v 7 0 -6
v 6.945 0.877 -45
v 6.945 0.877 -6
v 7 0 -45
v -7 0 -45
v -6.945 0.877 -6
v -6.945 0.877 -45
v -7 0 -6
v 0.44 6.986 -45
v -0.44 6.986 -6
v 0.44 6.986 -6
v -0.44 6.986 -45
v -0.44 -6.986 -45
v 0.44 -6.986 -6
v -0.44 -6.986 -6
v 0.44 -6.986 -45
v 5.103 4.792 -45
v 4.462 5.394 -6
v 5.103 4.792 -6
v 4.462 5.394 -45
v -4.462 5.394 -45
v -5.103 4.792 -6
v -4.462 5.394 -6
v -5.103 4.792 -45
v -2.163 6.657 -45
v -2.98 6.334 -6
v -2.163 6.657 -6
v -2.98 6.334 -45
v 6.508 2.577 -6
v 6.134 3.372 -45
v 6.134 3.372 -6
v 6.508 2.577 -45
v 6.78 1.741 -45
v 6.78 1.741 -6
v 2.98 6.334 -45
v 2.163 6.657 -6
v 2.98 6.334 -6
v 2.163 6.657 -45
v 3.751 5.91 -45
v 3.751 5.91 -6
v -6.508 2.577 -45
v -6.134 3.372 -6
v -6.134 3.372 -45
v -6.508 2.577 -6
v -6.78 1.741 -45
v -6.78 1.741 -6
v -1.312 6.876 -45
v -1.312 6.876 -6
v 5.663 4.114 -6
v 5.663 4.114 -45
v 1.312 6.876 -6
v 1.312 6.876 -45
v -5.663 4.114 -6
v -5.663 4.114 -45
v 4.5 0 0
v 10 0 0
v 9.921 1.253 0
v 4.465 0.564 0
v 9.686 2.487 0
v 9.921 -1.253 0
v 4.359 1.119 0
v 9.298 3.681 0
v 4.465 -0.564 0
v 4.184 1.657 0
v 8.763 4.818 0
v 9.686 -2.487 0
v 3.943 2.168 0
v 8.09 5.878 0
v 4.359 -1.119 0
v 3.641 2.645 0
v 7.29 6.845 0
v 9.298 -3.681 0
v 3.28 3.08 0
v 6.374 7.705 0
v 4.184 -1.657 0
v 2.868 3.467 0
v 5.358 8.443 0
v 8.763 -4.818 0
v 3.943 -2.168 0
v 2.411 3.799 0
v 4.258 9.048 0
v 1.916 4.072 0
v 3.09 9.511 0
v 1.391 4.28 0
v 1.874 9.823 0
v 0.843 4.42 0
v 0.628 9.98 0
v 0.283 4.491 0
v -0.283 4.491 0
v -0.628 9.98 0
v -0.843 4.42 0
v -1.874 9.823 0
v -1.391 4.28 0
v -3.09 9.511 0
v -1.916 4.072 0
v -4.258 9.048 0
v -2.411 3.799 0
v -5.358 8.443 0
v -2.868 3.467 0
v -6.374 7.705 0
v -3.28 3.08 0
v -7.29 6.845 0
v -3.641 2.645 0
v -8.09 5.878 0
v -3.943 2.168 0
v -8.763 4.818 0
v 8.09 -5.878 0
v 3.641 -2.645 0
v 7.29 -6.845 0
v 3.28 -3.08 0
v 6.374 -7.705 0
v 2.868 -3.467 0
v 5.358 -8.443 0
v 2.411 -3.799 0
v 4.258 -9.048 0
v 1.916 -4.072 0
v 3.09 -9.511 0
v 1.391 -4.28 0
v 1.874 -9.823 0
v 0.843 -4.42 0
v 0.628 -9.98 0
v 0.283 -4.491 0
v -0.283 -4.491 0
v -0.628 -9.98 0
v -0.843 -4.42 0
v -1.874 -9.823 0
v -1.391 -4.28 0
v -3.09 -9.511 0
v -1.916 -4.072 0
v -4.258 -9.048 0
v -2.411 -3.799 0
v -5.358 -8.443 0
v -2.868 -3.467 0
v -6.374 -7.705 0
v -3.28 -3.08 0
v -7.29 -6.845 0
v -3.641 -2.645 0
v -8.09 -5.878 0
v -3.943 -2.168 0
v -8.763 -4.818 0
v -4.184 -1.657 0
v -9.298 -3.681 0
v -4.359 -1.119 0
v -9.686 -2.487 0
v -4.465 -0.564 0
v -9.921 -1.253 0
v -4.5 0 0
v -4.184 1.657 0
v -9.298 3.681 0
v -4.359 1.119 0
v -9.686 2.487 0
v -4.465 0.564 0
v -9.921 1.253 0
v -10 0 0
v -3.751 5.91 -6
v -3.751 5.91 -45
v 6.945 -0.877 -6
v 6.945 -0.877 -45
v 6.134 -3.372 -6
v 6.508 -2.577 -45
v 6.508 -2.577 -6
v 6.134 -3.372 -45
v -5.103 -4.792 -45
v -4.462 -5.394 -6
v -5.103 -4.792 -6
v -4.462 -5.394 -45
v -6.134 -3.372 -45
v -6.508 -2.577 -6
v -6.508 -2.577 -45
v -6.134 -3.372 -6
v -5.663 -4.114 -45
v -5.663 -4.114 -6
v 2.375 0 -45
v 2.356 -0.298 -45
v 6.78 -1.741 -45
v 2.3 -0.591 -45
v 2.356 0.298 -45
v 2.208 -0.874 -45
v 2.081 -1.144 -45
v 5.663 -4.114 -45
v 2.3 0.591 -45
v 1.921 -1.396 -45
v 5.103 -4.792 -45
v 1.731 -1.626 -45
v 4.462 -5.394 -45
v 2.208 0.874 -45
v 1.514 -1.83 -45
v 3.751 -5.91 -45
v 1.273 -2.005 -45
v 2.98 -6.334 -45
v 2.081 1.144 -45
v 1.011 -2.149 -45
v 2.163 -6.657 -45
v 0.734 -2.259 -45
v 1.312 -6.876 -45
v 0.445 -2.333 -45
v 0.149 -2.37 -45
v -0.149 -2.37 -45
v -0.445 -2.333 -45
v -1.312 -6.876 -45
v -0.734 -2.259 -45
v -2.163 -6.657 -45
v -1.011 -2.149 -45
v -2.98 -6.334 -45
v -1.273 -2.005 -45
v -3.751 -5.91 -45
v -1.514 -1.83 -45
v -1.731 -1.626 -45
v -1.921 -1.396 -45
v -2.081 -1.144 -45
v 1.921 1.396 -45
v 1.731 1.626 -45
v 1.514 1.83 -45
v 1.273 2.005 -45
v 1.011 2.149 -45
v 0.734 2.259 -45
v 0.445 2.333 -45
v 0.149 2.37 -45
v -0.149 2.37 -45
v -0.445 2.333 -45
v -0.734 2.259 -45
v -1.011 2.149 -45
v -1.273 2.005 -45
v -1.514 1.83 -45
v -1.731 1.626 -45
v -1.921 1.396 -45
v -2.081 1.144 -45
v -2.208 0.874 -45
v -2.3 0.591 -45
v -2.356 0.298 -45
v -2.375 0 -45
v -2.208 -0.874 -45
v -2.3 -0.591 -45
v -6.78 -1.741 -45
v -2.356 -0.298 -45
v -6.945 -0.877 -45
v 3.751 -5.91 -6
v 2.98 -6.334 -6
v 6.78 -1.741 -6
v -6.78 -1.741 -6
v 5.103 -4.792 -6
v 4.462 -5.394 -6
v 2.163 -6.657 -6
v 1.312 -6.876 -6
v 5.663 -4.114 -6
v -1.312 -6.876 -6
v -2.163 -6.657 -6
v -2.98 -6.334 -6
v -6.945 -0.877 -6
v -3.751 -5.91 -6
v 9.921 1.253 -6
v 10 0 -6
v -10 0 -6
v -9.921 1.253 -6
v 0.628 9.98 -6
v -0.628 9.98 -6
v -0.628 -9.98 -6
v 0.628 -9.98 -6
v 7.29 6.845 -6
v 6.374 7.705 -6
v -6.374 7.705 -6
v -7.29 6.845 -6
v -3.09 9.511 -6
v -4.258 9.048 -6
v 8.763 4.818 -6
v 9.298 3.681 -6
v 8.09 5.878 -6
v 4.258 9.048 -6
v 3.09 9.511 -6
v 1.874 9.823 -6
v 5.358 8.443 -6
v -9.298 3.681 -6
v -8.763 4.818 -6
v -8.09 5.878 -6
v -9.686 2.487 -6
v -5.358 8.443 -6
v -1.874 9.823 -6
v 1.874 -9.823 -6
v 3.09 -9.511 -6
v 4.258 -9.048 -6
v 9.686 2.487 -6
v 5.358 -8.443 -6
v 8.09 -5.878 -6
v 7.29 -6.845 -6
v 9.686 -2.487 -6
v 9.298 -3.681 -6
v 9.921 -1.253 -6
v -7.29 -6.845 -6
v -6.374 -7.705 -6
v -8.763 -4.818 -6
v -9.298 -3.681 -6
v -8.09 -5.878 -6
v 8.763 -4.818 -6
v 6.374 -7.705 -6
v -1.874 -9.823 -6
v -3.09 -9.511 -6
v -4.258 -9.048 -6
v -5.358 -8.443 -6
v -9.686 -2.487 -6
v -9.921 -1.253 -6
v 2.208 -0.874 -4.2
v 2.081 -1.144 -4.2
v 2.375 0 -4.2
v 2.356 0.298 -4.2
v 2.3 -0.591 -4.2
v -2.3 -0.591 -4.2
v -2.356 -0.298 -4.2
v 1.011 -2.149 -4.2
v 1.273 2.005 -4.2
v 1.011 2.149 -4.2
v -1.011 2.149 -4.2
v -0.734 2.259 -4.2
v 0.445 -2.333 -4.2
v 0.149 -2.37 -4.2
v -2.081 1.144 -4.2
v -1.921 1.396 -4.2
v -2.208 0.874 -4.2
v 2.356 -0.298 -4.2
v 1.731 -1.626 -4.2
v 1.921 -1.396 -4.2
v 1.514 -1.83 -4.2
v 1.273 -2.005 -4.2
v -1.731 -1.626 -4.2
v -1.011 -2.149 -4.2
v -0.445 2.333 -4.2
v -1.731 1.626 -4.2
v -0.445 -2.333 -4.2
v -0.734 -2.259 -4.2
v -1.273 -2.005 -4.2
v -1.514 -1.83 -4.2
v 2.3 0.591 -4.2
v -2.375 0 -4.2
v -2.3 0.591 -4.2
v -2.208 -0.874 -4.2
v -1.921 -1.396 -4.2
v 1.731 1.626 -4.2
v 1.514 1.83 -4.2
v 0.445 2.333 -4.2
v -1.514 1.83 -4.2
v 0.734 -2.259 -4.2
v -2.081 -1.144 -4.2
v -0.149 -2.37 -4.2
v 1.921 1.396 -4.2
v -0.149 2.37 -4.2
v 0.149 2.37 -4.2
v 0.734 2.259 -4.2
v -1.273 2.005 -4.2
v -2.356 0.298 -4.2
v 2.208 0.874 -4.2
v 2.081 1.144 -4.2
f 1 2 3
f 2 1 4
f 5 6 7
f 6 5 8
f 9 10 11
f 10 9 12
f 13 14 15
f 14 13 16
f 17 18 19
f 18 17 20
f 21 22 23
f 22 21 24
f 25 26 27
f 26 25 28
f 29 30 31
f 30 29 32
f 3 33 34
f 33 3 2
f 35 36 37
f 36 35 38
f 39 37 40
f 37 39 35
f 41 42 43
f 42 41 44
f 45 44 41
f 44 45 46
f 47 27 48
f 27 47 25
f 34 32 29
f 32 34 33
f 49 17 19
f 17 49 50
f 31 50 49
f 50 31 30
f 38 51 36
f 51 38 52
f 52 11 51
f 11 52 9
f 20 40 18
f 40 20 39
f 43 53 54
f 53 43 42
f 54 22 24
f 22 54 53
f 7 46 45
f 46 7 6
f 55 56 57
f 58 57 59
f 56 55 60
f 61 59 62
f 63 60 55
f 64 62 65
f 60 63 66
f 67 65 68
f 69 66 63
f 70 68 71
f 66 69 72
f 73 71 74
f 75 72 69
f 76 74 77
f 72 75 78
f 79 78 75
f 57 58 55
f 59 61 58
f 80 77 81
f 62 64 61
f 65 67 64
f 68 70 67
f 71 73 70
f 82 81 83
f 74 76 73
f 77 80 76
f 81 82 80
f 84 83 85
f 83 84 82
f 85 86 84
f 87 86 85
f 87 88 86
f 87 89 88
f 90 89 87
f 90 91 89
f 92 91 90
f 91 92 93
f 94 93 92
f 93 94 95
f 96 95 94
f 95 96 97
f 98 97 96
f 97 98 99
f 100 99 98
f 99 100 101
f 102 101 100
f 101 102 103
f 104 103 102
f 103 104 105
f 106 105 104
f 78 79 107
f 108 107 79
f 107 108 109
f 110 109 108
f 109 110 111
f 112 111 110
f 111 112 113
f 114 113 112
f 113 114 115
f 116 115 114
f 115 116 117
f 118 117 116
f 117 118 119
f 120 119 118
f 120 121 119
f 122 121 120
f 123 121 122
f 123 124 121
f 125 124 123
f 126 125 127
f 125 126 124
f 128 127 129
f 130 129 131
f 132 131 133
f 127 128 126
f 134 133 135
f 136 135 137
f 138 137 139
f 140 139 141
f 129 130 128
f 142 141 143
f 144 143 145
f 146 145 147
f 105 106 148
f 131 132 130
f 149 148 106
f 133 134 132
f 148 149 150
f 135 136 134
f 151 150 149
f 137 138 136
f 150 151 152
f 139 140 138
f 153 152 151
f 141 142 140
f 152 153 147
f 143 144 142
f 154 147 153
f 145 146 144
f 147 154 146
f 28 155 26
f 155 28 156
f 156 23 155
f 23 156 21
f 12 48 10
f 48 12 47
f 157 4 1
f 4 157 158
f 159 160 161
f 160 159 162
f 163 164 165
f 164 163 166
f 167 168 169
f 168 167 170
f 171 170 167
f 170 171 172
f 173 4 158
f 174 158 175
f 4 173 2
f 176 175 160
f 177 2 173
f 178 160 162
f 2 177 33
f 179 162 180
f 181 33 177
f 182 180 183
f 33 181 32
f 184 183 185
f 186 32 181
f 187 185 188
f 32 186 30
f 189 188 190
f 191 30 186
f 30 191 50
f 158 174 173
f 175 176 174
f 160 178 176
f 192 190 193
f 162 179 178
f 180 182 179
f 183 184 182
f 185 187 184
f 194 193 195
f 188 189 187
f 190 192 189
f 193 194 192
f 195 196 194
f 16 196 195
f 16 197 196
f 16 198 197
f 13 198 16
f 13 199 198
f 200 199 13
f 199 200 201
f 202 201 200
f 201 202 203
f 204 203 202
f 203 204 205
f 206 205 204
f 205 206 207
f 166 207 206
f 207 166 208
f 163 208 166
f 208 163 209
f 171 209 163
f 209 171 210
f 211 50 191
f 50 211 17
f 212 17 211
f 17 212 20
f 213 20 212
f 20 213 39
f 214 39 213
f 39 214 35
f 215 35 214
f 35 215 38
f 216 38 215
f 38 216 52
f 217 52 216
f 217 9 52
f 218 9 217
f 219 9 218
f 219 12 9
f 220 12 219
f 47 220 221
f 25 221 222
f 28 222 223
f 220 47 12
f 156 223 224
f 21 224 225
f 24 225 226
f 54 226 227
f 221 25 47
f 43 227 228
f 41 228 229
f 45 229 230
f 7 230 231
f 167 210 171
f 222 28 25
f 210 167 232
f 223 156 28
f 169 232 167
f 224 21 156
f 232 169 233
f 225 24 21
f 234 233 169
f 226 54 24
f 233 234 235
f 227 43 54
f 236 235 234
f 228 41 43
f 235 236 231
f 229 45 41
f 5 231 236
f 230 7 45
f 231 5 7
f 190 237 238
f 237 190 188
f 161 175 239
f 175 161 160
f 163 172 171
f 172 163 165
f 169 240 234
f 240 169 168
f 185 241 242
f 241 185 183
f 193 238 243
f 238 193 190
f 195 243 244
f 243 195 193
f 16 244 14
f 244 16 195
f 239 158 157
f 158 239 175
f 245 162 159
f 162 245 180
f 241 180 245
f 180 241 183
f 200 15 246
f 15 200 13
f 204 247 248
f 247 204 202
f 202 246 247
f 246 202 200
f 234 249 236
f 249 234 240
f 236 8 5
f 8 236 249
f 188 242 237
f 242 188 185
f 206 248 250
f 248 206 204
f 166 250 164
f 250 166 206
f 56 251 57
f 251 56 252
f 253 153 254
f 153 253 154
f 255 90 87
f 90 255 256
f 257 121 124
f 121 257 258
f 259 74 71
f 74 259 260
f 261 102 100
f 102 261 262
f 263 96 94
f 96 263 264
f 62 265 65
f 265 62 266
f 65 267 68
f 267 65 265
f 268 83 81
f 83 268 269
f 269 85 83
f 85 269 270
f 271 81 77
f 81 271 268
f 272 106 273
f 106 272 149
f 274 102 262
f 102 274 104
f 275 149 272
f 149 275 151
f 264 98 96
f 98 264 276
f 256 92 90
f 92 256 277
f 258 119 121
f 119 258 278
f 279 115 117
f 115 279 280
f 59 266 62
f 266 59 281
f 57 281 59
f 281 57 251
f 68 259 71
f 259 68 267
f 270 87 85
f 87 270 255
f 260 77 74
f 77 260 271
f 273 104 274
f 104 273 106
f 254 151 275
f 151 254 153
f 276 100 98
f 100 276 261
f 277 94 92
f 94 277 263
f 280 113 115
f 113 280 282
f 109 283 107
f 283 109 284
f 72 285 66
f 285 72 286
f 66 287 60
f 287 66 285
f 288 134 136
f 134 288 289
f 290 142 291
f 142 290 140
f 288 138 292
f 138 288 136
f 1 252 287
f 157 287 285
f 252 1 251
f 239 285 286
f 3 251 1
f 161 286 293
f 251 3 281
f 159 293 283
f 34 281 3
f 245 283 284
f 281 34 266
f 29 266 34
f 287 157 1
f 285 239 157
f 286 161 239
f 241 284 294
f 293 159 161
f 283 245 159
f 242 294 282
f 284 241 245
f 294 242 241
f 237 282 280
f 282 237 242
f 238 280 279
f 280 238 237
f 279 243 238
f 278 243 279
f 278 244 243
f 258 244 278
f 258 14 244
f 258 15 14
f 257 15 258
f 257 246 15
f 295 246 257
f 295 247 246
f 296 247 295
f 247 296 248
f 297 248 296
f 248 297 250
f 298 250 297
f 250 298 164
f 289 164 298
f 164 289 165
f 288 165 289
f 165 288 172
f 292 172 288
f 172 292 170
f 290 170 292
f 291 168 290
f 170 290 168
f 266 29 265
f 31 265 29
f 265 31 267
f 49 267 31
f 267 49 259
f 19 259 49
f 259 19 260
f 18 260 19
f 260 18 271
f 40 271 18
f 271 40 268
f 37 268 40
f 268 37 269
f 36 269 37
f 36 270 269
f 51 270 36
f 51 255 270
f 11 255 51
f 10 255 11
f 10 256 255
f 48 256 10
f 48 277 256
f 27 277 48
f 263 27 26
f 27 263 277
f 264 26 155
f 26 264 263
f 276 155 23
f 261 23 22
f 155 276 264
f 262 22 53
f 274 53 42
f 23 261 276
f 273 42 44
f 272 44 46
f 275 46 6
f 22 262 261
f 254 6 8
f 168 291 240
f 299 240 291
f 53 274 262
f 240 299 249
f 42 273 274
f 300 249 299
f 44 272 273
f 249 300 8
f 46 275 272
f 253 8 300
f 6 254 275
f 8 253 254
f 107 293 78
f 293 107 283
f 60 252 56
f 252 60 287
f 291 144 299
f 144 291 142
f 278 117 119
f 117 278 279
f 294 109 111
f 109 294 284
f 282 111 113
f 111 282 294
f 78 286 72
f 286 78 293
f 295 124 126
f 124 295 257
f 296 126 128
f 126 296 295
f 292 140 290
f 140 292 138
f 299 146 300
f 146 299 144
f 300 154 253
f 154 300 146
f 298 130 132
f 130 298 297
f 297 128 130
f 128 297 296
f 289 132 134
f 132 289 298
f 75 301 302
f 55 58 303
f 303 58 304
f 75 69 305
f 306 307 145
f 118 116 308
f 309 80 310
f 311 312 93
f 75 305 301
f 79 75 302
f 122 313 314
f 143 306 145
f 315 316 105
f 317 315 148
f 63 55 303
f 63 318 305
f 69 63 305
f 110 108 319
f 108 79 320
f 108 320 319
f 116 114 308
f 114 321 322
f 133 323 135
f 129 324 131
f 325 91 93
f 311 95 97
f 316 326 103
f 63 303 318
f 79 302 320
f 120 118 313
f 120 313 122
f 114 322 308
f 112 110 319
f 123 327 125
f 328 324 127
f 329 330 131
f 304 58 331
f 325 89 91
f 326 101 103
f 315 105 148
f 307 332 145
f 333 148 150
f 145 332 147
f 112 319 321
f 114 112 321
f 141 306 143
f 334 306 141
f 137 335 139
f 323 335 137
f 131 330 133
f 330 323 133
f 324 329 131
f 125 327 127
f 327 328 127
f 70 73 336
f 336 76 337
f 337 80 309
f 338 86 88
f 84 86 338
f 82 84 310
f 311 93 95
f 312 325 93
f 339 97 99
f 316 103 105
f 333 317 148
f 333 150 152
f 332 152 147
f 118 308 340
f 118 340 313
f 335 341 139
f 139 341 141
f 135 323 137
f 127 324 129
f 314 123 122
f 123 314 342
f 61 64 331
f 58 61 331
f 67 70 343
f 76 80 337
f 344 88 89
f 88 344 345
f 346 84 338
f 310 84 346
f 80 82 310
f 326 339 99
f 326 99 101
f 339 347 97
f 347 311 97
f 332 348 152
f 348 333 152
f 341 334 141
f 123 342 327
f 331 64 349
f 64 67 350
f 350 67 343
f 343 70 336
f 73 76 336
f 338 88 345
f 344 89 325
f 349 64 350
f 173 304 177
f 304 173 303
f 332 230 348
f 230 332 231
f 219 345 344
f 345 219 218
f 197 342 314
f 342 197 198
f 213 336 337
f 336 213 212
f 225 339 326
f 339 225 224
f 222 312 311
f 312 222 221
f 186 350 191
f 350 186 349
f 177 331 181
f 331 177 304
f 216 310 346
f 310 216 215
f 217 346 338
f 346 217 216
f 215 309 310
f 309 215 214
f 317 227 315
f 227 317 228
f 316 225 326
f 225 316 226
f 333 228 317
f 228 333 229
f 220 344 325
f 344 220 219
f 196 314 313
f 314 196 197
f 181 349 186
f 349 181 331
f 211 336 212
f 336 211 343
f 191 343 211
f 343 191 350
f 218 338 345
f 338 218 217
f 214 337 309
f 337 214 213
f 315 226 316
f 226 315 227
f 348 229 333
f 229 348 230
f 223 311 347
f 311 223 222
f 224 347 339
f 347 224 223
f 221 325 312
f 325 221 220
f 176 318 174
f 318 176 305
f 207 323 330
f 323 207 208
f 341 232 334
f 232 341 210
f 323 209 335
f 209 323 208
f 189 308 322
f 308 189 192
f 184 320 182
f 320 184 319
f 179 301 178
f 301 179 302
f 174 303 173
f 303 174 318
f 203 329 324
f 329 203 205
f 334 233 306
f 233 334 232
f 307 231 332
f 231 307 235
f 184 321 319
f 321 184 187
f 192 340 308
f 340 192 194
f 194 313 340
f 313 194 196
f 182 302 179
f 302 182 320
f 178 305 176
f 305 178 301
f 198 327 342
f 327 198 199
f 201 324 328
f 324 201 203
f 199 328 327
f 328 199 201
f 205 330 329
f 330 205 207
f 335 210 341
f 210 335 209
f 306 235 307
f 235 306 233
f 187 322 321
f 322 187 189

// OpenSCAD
$fn = 50;


difference() {
	union() {
		translate(v = [0, 0, -45.0000000000]) {
			cylinder(h = 45, r = 7.0000000000);
		}
		translate(v = [0, 0, -6.0000000000]) {
			cylinder(h = 6, r = 10.0000000000);
		}
	}
	union() {
		translate(v = [0, 0, 0]) {
			rotate(a = [0, 0, 0]) {
				difference() {
					union() {
						#translate(v = [0, 0, -45.0000000000]) {
							cylinder(h = 45, r = 2.2500000000);
						}
						#translate(v = [0, 0, -4.2000000000]) {
							cylinder(h = 4.2000000000, r1 = 2.3750000000, r2 = 4.5000000000);
						}
						#translate(v = [0, 0, -45.0000000000]) {
							cylinder(h = 45, r = 2.3750000000);
						}
						#translate(v = [0, 0, -45.0000000000]) {
							cylinder(h = 45, r = 2.2500000000);
						}
					}
					union();
				}
			}
		}
	}
}
